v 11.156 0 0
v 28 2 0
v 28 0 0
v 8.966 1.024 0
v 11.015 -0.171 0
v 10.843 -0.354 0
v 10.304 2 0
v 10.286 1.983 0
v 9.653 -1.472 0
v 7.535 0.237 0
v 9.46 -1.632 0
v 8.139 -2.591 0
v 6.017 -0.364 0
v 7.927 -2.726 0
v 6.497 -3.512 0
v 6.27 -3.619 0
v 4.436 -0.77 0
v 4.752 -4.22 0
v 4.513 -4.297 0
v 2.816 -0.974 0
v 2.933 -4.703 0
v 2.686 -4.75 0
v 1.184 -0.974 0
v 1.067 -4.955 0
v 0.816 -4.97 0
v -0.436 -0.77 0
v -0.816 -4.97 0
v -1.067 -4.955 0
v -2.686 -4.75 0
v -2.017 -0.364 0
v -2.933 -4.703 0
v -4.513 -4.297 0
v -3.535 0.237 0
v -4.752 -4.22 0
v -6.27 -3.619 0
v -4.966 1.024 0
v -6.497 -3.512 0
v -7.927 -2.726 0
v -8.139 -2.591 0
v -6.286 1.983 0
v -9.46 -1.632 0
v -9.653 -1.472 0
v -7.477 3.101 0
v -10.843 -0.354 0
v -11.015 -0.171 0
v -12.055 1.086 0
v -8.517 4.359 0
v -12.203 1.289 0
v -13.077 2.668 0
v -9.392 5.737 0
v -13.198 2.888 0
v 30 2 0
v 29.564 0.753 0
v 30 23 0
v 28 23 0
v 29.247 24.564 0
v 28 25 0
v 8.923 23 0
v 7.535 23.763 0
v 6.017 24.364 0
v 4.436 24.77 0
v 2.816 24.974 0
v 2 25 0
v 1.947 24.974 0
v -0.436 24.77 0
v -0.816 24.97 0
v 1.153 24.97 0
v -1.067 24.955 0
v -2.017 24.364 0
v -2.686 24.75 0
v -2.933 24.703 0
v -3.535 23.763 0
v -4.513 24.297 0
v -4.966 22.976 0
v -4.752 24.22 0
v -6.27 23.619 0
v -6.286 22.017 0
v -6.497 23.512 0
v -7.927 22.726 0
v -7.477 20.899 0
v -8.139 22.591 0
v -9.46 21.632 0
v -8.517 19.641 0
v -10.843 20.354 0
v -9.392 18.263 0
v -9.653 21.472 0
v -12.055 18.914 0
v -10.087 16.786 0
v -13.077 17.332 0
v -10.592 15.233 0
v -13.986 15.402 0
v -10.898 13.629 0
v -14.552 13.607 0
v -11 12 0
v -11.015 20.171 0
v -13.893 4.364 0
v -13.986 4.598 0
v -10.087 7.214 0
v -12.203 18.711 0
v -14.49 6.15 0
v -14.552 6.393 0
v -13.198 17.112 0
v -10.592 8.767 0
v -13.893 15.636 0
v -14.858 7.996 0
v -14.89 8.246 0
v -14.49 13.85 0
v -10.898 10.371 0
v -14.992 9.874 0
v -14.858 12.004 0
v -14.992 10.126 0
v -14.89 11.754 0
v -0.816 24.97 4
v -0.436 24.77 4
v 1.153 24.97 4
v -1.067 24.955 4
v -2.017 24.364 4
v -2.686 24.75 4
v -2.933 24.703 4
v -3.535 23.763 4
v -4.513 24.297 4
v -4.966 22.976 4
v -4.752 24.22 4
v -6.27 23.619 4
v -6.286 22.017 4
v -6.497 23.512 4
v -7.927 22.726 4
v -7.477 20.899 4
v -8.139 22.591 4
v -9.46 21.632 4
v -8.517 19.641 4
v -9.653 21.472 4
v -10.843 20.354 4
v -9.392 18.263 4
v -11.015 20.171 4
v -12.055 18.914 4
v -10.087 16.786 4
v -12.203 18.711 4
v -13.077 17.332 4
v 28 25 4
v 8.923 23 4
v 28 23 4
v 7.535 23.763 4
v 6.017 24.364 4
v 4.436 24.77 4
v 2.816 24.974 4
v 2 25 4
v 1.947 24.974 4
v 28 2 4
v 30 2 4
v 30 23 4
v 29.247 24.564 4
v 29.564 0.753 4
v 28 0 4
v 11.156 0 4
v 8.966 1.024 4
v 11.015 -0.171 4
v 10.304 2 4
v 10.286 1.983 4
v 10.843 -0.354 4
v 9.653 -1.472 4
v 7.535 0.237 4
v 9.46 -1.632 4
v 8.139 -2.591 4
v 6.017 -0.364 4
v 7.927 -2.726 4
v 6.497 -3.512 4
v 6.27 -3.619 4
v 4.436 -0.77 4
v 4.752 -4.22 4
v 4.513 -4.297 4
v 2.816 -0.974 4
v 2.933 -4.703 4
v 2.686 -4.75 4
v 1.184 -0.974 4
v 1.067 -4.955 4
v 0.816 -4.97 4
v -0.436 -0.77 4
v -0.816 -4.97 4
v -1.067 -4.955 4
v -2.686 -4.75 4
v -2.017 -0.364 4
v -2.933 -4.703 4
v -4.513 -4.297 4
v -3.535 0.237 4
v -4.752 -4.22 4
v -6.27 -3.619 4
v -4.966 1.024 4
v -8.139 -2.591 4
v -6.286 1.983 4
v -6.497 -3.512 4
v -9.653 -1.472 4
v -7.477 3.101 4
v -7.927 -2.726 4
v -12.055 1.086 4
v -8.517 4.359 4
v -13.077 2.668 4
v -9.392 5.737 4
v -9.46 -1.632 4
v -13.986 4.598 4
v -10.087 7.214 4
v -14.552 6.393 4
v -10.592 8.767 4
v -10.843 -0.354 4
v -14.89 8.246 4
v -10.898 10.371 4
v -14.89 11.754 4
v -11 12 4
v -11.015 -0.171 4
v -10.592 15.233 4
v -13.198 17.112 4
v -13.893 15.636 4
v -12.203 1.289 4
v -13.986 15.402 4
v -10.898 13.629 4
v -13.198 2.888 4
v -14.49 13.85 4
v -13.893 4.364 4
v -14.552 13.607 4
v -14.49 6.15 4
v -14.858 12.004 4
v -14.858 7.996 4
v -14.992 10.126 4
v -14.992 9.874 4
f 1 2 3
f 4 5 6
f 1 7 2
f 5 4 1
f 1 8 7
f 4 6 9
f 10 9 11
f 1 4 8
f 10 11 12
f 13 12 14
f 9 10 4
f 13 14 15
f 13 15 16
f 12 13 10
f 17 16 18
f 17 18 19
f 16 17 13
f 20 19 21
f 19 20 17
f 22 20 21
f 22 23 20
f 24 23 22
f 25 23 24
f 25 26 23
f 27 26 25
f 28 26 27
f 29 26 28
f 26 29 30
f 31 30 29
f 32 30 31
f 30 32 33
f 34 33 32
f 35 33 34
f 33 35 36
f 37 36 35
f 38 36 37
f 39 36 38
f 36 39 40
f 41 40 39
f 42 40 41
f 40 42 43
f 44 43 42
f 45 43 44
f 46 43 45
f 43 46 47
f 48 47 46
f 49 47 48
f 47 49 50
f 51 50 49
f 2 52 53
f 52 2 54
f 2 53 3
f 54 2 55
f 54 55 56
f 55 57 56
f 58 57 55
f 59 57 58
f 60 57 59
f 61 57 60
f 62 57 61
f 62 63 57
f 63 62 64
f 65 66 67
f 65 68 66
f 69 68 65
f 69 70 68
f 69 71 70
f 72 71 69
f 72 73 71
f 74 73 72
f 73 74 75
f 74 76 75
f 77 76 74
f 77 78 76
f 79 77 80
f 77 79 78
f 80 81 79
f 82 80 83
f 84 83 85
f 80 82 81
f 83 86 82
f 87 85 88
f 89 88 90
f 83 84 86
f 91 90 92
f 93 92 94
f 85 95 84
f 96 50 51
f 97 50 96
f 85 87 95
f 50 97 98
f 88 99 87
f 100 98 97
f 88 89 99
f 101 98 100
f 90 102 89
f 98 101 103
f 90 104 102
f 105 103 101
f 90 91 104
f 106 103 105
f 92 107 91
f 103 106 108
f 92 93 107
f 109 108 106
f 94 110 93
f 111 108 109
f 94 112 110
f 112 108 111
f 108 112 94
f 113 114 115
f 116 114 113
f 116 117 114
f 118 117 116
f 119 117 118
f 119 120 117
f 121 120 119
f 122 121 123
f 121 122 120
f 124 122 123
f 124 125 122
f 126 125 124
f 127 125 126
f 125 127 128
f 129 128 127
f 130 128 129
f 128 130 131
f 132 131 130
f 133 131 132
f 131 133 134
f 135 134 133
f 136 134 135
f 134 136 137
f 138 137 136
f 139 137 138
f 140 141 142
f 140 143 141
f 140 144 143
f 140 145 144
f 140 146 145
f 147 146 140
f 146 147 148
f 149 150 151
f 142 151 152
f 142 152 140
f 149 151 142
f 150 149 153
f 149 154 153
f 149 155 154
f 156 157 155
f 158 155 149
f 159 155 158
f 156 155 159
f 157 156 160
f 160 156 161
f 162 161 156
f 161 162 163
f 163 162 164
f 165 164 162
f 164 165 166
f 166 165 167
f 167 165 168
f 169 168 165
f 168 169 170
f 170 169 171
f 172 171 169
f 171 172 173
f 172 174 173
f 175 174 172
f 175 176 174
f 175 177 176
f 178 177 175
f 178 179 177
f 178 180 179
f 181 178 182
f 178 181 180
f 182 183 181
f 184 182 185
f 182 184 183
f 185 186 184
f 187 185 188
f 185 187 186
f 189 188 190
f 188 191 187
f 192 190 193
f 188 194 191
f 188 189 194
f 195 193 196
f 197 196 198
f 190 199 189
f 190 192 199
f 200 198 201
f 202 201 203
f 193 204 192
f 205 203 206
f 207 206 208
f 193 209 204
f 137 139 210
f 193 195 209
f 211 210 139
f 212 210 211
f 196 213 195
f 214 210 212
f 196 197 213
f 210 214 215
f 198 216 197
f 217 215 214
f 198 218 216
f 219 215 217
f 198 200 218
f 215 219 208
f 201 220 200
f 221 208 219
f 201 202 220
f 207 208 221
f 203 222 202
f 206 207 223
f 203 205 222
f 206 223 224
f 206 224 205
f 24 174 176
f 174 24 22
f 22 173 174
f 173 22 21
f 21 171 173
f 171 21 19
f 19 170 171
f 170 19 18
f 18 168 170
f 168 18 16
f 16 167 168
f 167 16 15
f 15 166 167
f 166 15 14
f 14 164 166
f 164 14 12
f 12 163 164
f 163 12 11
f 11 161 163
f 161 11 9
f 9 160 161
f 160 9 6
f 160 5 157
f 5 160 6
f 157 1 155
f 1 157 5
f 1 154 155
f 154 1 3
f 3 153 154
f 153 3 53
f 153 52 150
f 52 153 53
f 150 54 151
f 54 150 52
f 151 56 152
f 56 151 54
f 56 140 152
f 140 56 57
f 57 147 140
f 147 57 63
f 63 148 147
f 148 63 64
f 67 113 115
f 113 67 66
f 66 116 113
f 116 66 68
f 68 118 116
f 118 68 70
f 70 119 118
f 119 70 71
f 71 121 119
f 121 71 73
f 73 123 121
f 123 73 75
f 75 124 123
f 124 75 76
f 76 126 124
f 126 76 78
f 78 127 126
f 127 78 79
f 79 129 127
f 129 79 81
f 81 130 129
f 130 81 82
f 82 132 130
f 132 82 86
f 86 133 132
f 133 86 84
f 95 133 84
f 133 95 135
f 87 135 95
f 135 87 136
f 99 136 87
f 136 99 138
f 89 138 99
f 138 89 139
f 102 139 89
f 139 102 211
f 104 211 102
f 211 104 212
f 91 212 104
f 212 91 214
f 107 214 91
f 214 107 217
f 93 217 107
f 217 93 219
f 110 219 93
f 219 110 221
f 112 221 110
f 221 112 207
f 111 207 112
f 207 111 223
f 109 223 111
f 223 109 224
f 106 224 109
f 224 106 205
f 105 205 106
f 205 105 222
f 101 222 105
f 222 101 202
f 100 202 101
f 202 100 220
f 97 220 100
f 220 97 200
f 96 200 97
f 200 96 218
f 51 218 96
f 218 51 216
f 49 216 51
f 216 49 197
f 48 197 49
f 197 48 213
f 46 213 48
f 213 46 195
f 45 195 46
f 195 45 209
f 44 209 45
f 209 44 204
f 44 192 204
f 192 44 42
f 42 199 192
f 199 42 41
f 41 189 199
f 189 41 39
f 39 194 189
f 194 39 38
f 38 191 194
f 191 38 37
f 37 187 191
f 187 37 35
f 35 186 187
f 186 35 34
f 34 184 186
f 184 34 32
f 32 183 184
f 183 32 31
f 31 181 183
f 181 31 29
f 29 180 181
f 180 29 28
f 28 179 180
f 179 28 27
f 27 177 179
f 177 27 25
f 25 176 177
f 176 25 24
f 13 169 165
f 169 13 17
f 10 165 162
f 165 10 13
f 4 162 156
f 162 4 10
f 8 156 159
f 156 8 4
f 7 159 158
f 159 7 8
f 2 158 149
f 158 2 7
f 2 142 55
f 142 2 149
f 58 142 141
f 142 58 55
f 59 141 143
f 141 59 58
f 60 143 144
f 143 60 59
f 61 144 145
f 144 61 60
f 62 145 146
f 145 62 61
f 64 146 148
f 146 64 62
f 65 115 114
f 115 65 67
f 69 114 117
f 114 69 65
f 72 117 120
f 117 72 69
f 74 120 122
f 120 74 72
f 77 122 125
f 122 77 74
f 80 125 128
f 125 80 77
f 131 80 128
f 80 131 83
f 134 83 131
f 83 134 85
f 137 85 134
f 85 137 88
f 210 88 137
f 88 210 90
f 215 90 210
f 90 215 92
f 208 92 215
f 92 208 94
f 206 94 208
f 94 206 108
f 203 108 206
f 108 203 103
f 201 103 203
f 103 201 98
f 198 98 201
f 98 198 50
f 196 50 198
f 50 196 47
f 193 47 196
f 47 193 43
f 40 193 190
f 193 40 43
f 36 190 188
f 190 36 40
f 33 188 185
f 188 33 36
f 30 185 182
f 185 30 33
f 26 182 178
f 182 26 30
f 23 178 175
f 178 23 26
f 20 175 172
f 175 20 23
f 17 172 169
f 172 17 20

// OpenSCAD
// Parameters
frame_width = 30;       // Width of the U-shape (horizontal span)
frame_height = 40;      // Total height of the U-shape
thickness = 2;          // Thickness of the frame (cross-section width)
depth = 4;              // Depth of the extrusion (3D thickness)

// Module to create a U-shaped frame
module u_shaped_frame() {
    difference() {
        // Outer shape
        linear_extrude(height = depth)
            offset(r = thickness)
                offset(delta = -thickness)
                    union() {
                        square([frame_width, frame_height - frame_width/2], center = false);
                        translate([0, frame_height - frame_width])
                            circle(r = frame_width/2, $fn = 50);
                    }

        // Inner cutout
        translate([thickness, thickness, -1])
            linear_extrude(height = depth + 2)
                union() {
                    square([frame_width - 2*thickness, frame_height - frame_width/2 - 2*thickness], center = false);
                    translate([0, frame_height - frame_width])
                        circle(r = (frame_width/2) - thickness, $fn = 50);
                }
    }
}

// Render the frame
u_shaped_frame();
